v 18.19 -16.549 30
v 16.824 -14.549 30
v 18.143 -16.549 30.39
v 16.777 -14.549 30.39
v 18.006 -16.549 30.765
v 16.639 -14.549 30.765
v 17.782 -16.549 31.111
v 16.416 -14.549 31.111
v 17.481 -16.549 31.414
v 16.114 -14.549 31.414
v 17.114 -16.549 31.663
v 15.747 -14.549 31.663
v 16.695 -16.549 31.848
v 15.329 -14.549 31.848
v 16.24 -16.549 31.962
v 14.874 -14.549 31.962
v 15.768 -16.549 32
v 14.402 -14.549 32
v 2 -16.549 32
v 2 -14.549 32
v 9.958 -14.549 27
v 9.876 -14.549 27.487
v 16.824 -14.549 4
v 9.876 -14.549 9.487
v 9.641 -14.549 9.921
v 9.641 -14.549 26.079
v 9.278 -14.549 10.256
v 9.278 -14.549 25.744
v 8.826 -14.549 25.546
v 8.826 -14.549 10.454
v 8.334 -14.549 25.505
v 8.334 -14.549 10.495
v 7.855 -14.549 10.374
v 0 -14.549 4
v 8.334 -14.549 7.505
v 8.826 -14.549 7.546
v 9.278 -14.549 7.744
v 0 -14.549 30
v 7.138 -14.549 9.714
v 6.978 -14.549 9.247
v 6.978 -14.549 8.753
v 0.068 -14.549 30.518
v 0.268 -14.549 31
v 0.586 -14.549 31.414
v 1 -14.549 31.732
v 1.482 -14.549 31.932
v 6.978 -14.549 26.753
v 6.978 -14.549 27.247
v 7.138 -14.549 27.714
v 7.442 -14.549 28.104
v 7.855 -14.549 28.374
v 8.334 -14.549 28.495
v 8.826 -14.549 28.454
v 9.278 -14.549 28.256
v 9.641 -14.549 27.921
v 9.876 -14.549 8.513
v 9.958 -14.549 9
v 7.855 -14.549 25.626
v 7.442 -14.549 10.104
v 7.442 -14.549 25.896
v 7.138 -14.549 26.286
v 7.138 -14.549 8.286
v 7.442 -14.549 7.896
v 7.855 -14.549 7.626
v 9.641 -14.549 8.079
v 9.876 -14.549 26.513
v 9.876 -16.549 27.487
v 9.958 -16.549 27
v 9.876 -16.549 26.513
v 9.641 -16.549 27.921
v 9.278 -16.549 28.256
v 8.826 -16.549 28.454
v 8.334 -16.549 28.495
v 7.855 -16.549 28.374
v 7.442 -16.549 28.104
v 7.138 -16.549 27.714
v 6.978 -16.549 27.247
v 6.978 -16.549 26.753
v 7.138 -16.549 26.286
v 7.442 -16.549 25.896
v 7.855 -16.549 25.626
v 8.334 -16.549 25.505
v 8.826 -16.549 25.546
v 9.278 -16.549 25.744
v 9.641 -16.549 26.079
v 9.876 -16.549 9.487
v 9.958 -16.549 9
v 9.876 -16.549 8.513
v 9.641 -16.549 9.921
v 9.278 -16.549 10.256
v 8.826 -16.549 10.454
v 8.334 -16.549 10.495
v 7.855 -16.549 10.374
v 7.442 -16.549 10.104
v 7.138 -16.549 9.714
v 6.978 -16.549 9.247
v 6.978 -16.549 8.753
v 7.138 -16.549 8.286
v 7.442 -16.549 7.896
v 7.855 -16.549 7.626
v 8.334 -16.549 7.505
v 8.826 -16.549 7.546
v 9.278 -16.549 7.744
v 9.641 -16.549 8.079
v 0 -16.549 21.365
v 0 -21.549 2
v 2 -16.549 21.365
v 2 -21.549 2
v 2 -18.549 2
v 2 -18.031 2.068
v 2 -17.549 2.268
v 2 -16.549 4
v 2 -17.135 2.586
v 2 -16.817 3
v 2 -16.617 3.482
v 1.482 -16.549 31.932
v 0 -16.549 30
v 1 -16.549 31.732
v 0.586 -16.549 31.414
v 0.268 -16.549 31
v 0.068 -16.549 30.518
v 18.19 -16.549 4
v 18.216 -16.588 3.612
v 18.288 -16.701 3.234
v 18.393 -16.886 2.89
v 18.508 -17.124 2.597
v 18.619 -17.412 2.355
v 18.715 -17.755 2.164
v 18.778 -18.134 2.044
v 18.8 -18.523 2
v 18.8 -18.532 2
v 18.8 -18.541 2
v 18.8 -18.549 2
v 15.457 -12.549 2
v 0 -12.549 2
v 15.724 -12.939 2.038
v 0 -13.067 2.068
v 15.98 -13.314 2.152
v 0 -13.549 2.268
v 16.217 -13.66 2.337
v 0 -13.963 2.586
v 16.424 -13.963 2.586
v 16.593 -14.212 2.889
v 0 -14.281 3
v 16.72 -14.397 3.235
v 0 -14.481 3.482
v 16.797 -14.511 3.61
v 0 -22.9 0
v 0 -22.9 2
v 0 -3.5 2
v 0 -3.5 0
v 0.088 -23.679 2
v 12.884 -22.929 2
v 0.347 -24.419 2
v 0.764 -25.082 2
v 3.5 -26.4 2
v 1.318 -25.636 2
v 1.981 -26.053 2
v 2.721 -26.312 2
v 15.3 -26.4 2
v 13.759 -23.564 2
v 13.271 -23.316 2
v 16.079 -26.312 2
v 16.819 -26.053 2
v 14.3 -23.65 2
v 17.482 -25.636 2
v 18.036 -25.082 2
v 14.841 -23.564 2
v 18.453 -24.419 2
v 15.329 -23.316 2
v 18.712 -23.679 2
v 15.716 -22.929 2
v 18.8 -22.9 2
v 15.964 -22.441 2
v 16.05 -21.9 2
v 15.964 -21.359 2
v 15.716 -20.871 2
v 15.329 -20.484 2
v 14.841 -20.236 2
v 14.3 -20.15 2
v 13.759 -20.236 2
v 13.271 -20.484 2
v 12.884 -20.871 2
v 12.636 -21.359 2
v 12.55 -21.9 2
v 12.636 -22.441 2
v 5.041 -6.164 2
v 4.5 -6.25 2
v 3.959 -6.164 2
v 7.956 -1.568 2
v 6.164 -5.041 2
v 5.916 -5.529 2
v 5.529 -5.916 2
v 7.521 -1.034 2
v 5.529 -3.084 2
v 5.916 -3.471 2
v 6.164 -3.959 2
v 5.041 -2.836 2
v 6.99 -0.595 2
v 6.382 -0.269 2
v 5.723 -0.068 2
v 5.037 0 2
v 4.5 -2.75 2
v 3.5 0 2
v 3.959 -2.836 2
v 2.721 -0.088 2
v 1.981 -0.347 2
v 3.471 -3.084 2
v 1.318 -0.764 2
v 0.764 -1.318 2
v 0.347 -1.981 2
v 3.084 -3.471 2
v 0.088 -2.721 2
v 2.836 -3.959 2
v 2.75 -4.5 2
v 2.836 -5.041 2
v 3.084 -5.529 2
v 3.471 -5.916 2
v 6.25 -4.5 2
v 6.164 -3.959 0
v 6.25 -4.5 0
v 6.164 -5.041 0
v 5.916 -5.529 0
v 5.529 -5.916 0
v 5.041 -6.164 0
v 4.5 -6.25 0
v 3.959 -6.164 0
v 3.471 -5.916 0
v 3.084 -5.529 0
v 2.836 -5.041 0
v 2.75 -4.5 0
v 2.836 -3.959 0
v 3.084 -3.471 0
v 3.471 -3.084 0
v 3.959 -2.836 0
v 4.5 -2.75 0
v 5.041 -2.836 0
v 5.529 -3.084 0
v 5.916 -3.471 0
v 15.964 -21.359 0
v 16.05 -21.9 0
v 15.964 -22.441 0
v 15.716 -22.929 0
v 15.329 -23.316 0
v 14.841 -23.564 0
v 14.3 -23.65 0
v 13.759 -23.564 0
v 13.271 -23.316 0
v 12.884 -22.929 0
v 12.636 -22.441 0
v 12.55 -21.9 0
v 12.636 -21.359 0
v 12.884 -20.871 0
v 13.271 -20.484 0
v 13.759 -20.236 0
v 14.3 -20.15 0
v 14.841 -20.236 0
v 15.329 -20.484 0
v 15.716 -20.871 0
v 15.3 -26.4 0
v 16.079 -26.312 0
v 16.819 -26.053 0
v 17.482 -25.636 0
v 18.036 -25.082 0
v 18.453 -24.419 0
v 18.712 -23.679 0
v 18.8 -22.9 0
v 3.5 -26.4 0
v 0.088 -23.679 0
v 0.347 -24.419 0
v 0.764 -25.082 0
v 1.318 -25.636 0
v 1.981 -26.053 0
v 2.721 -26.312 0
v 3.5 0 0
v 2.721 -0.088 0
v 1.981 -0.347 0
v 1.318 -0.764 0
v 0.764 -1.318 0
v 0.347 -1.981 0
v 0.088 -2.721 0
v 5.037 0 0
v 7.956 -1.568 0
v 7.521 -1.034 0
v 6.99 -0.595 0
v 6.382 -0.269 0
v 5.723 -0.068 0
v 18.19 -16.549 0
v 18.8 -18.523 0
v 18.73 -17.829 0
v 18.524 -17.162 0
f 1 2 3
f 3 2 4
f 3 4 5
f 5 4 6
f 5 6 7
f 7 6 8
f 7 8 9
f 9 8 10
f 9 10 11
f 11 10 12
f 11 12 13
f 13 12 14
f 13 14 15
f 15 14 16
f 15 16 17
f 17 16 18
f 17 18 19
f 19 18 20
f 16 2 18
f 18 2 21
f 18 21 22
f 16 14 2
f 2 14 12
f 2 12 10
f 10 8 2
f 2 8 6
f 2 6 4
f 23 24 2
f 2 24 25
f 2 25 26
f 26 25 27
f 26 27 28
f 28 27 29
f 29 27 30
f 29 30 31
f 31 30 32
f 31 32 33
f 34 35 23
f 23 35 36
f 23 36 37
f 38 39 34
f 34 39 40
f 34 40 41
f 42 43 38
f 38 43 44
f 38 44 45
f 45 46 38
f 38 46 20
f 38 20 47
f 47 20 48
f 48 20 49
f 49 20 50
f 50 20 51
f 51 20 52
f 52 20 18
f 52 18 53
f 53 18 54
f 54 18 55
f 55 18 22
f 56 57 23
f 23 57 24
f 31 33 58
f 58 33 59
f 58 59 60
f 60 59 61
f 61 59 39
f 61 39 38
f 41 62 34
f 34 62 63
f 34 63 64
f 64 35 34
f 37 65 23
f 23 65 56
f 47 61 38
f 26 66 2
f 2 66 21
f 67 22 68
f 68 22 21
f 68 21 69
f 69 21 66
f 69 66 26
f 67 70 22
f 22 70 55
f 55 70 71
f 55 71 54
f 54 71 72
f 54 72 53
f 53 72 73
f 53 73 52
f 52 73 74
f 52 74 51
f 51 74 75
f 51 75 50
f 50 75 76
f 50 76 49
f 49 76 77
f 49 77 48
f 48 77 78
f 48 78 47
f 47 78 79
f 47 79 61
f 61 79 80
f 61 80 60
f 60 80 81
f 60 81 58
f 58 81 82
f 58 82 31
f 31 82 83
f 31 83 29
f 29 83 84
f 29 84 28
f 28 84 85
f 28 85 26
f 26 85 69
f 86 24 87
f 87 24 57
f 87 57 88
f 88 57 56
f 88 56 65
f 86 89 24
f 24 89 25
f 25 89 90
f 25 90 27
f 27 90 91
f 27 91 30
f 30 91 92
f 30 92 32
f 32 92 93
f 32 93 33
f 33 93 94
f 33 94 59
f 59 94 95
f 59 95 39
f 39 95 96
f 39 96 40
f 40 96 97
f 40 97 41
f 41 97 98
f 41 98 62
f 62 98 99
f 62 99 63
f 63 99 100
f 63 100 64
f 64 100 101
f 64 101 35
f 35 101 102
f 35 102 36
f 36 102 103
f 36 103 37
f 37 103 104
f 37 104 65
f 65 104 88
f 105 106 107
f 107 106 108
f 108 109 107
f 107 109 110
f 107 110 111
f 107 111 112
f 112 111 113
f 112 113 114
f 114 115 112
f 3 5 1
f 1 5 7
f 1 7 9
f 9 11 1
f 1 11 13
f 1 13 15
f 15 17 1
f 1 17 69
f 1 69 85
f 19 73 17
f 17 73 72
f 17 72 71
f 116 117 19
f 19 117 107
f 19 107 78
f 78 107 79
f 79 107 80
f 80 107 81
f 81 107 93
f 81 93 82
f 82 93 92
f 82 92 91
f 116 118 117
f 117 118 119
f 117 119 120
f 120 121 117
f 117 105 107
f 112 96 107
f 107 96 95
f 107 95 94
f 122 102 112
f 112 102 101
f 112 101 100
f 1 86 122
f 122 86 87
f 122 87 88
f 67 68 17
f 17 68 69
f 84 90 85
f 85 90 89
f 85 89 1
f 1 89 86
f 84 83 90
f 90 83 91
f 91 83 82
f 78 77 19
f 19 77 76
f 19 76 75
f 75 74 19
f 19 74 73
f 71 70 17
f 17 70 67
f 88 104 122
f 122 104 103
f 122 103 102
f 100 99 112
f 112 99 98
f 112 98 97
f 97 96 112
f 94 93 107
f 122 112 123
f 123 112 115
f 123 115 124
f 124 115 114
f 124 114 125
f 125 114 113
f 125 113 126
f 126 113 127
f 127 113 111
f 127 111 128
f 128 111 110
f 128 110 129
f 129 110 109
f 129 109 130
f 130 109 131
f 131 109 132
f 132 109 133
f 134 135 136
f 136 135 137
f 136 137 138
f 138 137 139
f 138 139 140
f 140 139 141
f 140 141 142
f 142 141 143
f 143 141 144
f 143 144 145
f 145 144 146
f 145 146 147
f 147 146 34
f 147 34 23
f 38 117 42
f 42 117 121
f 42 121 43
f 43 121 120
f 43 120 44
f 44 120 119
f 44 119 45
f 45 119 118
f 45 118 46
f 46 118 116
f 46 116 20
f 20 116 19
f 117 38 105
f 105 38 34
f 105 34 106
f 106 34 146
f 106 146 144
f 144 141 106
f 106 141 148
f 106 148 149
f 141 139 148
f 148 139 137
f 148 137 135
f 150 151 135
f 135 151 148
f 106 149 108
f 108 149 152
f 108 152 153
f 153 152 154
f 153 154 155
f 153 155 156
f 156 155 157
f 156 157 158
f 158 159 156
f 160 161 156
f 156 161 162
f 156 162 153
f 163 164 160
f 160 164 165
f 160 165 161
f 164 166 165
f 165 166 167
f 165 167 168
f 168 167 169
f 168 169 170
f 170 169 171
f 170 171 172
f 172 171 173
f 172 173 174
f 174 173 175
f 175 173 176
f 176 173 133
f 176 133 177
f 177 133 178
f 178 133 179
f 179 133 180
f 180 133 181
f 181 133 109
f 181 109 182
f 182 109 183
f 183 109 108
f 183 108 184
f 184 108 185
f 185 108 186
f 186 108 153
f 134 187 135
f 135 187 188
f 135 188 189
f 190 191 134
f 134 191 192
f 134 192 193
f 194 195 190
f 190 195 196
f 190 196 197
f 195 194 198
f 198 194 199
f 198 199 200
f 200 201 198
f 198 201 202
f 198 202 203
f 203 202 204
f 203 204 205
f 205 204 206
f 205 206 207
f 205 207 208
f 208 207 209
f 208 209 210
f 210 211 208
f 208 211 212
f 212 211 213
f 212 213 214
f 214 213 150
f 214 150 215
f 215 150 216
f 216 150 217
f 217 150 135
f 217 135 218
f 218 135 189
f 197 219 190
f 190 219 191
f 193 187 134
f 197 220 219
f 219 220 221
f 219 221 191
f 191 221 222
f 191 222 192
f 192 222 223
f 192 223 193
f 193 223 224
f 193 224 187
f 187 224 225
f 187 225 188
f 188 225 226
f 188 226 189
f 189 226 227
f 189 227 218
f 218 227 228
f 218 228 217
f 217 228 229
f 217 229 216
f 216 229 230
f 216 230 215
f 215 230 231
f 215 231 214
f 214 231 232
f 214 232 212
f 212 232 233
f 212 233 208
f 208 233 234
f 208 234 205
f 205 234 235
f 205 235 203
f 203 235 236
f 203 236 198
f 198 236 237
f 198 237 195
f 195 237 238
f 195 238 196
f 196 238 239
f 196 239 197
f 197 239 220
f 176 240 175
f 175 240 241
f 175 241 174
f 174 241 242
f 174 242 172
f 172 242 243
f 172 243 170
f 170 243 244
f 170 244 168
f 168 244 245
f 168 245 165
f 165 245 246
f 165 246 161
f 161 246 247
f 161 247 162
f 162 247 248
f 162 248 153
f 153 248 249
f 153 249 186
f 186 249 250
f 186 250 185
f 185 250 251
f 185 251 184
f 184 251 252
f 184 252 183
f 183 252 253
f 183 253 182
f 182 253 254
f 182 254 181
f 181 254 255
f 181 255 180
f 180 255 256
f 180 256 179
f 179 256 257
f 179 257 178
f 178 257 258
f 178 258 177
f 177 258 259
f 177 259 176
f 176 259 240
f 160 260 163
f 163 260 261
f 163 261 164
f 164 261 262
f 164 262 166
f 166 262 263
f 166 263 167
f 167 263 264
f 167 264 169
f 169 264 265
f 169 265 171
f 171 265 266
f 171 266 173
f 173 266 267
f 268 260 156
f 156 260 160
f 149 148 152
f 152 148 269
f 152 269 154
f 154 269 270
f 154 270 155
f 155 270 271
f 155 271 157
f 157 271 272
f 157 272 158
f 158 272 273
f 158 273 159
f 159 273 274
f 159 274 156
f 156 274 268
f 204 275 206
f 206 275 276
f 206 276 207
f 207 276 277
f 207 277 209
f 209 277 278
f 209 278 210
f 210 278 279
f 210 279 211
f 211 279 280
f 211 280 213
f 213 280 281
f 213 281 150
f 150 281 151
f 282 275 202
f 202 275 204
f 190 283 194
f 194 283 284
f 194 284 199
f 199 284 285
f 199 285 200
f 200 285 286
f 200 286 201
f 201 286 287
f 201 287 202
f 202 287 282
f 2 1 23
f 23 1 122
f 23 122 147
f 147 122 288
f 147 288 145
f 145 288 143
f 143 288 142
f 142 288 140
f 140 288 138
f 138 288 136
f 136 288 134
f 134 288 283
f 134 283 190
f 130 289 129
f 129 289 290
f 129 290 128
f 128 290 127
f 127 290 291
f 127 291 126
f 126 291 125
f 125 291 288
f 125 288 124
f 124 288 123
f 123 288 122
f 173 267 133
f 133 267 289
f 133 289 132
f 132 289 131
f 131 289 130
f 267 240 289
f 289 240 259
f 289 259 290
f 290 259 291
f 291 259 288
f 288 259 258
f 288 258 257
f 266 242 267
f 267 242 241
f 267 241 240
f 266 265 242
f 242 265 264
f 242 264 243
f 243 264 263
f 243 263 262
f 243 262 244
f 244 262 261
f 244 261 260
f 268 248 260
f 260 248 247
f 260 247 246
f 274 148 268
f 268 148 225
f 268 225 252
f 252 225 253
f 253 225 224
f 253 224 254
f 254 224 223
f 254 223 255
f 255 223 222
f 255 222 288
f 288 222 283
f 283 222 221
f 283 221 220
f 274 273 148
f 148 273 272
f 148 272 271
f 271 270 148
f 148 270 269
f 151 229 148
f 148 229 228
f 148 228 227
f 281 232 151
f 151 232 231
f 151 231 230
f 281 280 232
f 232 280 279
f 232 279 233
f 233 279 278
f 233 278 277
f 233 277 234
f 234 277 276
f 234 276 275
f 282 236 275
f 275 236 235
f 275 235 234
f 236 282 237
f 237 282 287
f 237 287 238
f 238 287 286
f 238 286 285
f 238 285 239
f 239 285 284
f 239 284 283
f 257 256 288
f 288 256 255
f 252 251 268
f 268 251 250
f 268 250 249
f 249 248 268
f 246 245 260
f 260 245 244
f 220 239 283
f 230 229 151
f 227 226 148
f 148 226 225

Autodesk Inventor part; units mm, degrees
ref_plane "YZ Plane" through (0, 0, 0) normal (1, 0, 0) x (0, 1, 0)
ref_plane "XZ Plane" through (0, 0, 0) normal (0, 1, 0) x (-1, 0, 0)
ref_plane "XY Plane" through (0, 0, 0) normal (0, 0, 1) x (1, 0, 0)
sketch "Sketch1" plane through (0, 0, 0) normal (0, 0, 1) x (1, 0, 0)
  circle A0 centre (4.5, -4.5) radius 1.75
  circle A1 centre (14.3, -21.9) radius 1.75
  line L0 (15.3, -26.4) -> (3.5, -26.4)
  line L1 (0, -22.9) -> (0, -3.5)
  line L2 (18.8, -22.9) -> (18.8, -19.7088)
  line L3 (5.0373, 0) -> (3.5, 0)
  arc A2 (3.5, 0) -> (0, -3.5) centre (3.5, -3.5) ccw
  arc A3 (7.956, -1.5683) -> (5.0373, 0) centre (5.0373, -3.5) ccw
  arc A4 (15.3, -26.4) -> (18.8, -22.9) centre (15.3, -22.9) ccw
  arc A5 (0, -22.9) -> (3.5, -26.4) centre (3.5, -22.9) ccw
  line L4 (14.3, -21.9) -> (14.3, -17.4)
  line L5 (18.8, -19.7088) -> (18.8, -18.5234)
  line L6 (18.19, -16.5491) -> (7.956, -1.5683)
  arc A6 (18.8, -18.5234) -> (18.19, -16.5491) centre (15.3, -18.5234) ccw
  point P0 (0, 0)
  point P1 (6.9181, 0)
  point P2 (4.2687, 0)
  dimension "d0" = 3.5
  dimension "d1" = 3.5
  dimension "d34" = 4.5
  dimension "d35" = 4.5
  dimension "d38" = 6.9181
  dimension "d39" = 3.5
  dimension "d46" = 3.5
  dimension "d66" = 9.8
  dimension "d67" = 17.4
  dimension "d68" = 19.97
  dimension "d69" = 4.5
  dimension "d70" = 4.5
  dimension "d71" = 4.5
  dimension "d72" = 3.5
extrude "Extrusion5" add sketch "Sketch1" along normal blind 2
sketch "Sketch5" plane through (0, 0, 2) normal (0, 0, 1) x (1, 0, 0)
  line L0 (0, -3.5) -> (0, -22.9) projected
  line L1 (0, -14.5491) -> (16.1836, -14.5491)
  line L2 (0, -14.5491) -> (0, -16.5491)
  line L3 (0, -16.5491) -> (17.3511, -16.5491)
  line L4 (0, -14.5491) -> (16.8237, -14.5491)
  line L5 (18.19, -16.5491) -> (7.956, -1.5683) projected
  line L6 (18.19, -16.5491) -> (0, -16.5491)
  line L7 (0, -3.5) -> (0, -22.9) projected
  line L8 (18.19, -16.5491) -> (16.8237, -14.5491)
  point P0 (0, 0)
  point P1 (0, -16.5491)
  dimension "d42" = 2
  dimension "d76" = 0
extrude "Extrusion6" add sketch "Sketch5" along normal blind 30
fillet "Fillet2" radius 2 3 edges at (0, -15.5491, 32) (8.4119, -14.5491, 2) (9.095, -16.5491, 2)
sketch "Sketch6" plane through (0, -22.9, 0) normal (-1, 0, 0) x (0, 0, 1)
  line L0 (4, 6.3509) -> (30, 6.3509) projected
  line L1 (2, 2.75) -> (2, -0.75) projected
  line L2 (2, 6.3509) -> (2, 1.3509)
  line L3 (2, 6.3509) -> (2, 1.3509)
  line L4 (2, 1.3509) -> (21.3649, 6.3509)
  line L5 (21.3649, 6.3509) -> (2, 6.3509)
  point P0 (0, 22.9)
  point P1 (2, 2.75)
  dimension "d73" = 5
  dimension "d74" = 5
  dimension "d75" = 20
extrude "Extrusion7" add sketch "Sketch6" against normal blind 2
sketch "Sketch7" plane through (0, -14.5491, 4) normal (0, 1, 0) x (1, 0, 0)
  circle A0 centre (8.4575, -5) radius 1.5
  circle A1 centre (8.4575, -23) radius 1.5
  line L0 (0, 0) -> (0, -26) projected
  line L1 (16.8237, -28) -> (2, -28) projected
  line L2 (0, 0) -> (16.8237, 0) projected
  line L3 (16.8237, 0) -> (16.8237, -28) projected
  point P0 (0, 4)
  point P1 (13.7853, -28)
  dimension "d54" = 3
  dimension "d55" = 3
  dimension "d56" = 18
  dimension "d58" = 8.4575
  dimension "d59" = 8.4575
  dimension "d62" = 5
  dimension "d63" = 5
  dimension "d78" = 16.8237
extrude "Extrusion8" cut sketch "Sketch7" against normal blind 2
fillet "Fillet3" radius 2 1 edges at (17.5069, -15.5491, 32)
properties part number "BLTouch Mount"
